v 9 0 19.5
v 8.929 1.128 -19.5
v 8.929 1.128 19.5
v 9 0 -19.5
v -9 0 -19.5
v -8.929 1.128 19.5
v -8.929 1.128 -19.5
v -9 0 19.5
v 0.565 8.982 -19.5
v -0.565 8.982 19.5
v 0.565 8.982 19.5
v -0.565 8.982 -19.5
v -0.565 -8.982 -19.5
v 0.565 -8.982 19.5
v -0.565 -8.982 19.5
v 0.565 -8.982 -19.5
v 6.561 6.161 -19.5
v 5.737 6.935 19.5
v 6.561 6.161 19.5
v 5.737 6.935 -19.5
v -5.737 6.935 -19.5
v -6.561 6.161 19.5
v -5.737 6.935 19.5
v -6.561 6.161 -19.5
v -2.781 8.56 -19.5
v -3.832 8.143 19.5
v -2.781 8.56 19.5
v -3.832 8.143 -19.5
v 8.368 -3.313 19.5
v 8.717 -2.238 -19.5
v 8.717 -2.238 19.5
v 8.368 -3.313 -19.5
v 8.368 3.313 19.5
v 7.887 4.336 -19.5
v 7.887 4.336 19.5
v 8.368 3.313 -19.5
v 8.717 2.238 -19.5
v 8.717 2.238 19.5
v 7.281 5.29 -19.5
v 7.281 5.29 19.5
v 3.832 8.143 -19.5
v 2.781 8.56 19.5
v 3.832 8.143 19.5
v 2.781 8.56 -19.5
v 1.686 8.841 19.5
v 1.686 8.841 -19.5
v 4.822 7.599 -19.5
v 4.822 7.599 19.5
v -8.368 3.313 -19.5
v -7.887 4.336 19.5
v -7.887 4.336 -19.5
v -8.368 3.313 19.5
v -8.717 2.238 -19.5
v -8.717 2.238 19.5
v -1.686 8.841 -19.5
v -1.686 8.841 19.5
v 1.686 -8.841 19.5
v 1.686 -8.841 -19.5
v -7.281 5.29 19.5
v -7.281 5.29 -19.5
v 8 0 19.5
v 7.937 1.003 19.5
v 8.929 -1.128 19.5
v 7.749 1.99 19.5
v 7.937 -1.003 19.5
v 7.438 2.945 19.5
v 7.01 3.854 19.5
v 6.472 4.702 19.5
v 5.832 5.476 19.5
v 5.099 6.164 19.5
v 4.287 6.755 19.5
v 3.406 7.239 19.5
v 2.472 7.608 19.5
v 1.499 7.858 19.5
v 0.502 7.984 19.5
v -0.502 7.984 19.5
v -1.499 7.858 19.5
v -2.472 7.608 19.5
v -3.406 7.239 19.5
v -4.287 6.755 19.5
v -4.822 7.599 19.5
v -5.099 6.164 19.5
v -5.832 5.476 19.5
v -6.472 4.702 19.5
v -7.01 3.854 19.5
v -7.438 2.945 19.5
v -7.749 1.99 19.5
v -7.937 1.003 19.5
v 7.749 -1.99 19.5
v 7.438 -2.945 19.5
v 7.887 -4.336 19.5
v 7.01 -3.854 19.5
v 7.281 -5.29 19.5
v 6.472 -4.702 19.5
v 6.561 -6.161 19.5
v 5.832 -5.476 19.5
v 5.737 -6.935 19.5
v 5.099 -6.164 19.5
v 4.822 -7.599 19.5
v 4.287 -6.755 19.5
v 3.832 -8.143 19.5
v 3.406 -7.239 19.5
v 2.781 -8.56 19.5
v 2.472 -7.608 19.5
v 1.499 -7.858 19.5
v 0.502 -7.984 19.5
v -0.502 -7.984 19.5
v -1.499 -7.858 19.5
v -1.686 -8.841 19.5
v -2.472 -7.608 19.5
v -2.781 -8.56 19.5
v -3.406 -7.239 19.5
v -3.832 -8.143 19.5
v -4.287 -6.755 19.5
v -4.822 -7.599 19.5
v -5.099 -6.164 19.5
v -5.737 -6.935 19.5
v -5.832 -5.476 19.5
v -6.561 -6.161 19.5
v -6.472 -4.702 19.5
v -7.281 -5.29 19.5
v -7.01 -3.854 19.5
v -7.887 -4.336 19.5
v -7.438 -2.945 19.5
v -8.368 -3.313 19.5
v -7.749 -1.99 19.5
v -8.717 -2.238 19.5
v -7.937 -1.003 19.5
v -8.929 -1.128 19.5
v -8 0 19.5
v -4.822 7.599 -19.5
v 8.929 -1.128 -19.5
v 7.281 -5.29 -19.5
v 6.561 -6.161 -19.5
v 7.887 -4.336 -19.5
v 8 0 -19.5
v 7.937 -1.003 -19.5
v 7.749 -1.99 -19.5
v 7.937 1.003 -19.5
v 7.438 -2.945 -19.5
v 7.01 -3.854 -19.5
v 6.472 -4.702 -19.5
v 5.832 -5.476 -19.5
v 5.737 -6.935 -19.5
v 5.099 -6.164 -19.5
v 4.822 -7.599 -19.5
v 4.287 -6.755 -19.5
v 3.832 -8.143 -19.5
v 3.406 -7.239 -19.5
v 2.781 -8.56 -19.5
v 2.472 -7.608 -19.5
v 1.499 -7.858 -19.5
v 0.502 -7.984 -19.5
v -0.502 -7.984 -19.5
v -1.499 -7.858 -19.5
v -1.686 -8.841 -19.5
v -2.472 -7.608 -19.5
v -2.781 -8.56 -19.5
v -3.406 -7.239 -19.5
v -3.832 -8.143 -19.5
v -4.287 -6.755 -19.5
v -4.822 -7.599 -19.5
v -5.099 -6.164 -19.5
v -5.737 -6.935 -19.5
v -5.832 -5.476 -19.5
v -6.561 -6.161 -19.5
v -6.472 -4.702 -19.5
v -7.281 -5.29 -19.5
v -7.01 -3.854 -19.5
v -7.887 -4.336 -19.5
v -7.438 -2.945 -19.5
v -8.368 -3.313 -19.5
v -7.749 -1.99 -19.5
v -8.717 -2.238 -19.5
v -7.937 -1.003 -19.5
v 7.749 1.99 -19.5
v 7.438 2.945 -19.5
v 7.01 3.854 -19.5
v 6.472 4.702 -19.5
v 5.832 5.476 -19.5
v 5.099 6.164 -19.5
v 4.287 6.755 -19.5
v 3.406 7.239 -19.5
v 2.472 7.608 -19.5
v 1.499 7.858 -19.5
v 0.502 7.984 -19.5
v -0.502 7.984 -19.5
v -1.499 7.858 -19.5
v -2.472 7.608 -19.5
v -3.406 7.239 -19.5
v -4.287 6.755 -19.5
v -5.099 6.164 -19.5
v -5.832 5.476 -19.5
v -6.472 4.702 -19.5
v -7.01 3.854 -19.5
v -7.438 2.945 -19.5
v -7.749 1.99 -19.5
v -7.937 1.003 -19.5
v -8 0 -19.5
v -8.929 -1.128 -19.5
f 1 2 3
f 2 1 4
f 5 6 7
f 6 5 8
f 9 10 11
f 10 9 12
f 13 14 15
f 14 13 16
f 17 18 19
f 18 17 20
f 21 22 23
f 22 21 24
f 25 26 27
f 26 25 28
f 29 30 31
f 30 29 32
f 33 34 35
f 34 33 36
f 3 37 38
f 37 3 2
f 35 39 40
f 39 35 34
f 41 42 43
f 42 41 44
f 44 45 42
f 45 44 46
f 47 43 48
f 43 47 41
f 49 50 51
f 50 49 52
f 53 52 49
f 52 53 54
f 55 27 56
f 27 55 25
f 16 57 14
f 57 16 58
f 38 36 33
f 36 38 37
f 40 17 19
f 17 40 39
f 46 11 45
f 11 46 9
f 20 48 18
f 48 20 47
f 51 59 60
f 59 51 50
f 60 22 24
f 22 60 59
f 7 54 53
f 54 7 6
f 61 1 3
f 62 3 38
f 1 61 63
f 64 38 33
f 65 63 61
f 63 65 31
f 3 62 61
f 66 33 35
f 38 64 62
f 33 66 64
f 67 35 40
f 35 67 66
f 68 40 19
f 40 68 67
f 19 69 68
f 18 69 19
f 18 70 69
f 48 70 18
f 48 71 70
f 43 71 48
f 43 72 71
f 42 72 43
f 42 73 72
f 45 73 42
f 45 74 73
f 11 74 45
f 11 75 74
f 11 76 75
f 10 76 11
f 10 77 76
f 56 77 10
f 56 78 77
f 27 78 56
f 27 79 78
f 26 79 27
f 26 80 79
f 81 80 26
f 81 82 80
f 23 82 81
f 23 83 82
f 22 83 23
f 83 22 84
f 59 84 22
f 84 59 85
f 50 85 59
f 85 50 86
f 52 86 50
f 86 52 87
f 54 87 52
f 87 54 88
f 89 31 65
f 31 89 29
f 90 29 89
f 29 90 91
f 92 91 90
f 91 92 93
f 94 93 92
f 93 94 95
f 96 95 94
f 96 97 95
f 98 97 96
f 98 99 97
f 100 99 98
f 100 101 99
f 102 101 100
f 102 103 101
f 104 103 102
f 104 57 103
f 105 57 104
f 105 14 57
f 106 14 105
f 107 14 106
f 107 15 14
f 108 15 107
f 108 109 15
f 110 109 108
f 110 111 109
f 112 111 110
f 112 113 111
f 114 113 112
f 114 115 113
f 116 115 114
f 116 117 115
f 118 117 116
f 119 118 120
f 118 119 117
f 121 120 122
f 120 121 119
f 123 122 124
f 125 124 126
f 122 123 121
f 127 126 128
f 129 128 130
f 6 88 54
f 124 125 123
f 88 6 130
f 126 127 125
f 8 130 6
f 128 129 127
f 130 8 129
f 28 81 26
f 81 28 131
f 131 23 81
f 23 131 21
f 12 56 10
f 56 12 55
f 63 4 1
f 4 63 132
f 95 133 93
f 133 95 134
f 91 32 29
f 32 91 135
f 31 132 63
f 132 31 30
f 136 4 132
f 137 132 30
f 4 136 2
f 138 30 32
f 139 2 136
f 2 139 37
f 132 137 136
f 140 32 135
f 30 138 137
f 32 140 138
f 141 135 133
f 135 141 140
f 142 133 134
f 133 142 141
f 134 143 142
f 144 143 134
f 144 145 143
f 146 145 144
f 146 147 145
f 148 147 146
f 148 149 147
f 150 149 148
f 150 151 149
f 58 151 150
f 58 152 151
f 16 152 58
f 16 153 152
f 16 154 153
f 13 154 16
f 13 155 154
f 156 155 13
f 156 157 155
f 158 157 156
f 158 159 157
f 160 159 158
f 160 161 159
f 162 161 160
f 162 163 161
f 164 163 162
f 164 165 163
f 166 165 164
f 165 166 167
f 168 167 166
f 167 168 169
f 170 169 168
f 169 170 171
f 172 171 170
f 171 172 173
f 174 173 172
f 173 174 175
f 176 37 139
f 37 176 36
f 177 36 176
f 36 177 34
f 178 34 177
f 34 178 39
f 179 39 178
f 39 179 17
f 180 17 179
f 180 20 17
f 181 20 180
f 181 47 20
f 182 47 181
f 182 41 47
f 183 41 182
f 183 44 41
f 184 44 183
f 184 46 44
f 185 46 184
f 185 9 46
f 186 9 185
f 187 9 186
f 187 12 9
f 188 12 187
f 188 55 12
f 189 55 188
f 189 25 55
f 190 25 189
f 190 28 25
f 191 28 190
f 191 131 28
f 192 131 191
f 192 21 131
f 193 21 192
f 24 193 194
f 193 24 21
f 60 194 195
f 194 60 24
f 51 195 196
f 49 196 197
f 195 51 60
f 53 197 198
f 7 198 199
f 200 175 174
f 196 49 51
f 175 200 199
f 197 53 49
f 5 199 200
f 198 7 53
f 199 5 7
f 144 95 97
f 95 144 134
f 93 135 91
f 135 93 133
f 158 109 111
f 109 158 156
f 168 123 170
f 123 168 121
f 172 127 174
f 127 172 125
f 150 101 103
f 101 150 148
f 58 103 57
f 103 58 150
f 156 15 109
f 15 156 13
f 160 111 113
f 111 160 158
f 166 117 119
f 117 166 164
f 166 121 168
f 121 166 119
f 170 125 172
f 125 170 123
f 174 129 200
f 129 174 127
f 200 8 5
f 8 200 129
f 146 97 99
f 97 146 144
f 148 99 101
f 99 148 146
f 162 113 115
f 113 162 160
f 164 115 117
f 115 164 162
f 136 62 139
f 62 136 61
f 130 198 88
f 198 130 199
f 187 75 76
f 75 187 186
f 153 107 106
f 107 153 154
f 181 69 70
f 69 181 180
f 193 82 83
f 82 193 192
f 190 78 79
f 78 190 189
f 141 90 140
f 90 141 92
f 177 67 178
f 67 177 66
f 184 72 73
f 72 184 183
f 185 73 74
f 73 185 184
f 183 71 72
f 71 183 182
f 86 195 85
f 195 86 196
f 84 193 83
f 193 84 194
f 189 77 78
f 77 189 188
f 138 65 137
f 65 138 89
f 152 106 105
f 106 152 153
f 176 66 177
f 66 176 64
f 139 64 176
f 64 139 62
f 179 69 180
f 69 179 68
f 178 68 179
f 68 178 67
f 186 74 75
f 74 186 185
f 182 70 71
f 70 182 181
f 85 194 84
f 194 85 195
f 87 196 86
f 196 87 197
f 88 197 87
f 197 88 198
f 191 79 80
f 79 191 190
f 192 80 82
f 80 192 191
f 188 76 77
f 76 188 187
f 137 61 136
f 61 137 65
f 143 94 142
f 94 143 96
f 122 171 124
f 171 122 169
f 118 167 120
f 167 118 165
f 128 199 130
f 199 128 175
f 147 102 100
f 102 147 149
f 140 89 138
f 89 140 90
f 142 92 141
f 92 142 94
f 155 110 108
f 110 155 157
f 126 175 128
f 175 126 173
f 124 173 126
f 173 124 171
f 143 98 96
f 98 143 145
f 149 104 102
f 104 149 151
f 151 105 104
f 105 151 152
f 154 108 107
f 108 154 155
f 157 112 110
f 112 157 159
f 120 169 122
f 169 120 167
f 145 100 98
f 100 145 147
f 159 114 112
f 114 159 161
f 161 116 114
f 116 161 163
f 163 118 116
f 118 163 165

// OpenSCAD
$fn = 50;


difference() {
	union() {
		translate(v = [0, 0, -19.5000000000]) {
			cylinder(h = 39, r = 9.0000000000);
		}
	}
	union() {
		translate(v = [0, 0, -100.0000000000]) {
			cylinder(h = 200, r = 8);
		}
	}
}
